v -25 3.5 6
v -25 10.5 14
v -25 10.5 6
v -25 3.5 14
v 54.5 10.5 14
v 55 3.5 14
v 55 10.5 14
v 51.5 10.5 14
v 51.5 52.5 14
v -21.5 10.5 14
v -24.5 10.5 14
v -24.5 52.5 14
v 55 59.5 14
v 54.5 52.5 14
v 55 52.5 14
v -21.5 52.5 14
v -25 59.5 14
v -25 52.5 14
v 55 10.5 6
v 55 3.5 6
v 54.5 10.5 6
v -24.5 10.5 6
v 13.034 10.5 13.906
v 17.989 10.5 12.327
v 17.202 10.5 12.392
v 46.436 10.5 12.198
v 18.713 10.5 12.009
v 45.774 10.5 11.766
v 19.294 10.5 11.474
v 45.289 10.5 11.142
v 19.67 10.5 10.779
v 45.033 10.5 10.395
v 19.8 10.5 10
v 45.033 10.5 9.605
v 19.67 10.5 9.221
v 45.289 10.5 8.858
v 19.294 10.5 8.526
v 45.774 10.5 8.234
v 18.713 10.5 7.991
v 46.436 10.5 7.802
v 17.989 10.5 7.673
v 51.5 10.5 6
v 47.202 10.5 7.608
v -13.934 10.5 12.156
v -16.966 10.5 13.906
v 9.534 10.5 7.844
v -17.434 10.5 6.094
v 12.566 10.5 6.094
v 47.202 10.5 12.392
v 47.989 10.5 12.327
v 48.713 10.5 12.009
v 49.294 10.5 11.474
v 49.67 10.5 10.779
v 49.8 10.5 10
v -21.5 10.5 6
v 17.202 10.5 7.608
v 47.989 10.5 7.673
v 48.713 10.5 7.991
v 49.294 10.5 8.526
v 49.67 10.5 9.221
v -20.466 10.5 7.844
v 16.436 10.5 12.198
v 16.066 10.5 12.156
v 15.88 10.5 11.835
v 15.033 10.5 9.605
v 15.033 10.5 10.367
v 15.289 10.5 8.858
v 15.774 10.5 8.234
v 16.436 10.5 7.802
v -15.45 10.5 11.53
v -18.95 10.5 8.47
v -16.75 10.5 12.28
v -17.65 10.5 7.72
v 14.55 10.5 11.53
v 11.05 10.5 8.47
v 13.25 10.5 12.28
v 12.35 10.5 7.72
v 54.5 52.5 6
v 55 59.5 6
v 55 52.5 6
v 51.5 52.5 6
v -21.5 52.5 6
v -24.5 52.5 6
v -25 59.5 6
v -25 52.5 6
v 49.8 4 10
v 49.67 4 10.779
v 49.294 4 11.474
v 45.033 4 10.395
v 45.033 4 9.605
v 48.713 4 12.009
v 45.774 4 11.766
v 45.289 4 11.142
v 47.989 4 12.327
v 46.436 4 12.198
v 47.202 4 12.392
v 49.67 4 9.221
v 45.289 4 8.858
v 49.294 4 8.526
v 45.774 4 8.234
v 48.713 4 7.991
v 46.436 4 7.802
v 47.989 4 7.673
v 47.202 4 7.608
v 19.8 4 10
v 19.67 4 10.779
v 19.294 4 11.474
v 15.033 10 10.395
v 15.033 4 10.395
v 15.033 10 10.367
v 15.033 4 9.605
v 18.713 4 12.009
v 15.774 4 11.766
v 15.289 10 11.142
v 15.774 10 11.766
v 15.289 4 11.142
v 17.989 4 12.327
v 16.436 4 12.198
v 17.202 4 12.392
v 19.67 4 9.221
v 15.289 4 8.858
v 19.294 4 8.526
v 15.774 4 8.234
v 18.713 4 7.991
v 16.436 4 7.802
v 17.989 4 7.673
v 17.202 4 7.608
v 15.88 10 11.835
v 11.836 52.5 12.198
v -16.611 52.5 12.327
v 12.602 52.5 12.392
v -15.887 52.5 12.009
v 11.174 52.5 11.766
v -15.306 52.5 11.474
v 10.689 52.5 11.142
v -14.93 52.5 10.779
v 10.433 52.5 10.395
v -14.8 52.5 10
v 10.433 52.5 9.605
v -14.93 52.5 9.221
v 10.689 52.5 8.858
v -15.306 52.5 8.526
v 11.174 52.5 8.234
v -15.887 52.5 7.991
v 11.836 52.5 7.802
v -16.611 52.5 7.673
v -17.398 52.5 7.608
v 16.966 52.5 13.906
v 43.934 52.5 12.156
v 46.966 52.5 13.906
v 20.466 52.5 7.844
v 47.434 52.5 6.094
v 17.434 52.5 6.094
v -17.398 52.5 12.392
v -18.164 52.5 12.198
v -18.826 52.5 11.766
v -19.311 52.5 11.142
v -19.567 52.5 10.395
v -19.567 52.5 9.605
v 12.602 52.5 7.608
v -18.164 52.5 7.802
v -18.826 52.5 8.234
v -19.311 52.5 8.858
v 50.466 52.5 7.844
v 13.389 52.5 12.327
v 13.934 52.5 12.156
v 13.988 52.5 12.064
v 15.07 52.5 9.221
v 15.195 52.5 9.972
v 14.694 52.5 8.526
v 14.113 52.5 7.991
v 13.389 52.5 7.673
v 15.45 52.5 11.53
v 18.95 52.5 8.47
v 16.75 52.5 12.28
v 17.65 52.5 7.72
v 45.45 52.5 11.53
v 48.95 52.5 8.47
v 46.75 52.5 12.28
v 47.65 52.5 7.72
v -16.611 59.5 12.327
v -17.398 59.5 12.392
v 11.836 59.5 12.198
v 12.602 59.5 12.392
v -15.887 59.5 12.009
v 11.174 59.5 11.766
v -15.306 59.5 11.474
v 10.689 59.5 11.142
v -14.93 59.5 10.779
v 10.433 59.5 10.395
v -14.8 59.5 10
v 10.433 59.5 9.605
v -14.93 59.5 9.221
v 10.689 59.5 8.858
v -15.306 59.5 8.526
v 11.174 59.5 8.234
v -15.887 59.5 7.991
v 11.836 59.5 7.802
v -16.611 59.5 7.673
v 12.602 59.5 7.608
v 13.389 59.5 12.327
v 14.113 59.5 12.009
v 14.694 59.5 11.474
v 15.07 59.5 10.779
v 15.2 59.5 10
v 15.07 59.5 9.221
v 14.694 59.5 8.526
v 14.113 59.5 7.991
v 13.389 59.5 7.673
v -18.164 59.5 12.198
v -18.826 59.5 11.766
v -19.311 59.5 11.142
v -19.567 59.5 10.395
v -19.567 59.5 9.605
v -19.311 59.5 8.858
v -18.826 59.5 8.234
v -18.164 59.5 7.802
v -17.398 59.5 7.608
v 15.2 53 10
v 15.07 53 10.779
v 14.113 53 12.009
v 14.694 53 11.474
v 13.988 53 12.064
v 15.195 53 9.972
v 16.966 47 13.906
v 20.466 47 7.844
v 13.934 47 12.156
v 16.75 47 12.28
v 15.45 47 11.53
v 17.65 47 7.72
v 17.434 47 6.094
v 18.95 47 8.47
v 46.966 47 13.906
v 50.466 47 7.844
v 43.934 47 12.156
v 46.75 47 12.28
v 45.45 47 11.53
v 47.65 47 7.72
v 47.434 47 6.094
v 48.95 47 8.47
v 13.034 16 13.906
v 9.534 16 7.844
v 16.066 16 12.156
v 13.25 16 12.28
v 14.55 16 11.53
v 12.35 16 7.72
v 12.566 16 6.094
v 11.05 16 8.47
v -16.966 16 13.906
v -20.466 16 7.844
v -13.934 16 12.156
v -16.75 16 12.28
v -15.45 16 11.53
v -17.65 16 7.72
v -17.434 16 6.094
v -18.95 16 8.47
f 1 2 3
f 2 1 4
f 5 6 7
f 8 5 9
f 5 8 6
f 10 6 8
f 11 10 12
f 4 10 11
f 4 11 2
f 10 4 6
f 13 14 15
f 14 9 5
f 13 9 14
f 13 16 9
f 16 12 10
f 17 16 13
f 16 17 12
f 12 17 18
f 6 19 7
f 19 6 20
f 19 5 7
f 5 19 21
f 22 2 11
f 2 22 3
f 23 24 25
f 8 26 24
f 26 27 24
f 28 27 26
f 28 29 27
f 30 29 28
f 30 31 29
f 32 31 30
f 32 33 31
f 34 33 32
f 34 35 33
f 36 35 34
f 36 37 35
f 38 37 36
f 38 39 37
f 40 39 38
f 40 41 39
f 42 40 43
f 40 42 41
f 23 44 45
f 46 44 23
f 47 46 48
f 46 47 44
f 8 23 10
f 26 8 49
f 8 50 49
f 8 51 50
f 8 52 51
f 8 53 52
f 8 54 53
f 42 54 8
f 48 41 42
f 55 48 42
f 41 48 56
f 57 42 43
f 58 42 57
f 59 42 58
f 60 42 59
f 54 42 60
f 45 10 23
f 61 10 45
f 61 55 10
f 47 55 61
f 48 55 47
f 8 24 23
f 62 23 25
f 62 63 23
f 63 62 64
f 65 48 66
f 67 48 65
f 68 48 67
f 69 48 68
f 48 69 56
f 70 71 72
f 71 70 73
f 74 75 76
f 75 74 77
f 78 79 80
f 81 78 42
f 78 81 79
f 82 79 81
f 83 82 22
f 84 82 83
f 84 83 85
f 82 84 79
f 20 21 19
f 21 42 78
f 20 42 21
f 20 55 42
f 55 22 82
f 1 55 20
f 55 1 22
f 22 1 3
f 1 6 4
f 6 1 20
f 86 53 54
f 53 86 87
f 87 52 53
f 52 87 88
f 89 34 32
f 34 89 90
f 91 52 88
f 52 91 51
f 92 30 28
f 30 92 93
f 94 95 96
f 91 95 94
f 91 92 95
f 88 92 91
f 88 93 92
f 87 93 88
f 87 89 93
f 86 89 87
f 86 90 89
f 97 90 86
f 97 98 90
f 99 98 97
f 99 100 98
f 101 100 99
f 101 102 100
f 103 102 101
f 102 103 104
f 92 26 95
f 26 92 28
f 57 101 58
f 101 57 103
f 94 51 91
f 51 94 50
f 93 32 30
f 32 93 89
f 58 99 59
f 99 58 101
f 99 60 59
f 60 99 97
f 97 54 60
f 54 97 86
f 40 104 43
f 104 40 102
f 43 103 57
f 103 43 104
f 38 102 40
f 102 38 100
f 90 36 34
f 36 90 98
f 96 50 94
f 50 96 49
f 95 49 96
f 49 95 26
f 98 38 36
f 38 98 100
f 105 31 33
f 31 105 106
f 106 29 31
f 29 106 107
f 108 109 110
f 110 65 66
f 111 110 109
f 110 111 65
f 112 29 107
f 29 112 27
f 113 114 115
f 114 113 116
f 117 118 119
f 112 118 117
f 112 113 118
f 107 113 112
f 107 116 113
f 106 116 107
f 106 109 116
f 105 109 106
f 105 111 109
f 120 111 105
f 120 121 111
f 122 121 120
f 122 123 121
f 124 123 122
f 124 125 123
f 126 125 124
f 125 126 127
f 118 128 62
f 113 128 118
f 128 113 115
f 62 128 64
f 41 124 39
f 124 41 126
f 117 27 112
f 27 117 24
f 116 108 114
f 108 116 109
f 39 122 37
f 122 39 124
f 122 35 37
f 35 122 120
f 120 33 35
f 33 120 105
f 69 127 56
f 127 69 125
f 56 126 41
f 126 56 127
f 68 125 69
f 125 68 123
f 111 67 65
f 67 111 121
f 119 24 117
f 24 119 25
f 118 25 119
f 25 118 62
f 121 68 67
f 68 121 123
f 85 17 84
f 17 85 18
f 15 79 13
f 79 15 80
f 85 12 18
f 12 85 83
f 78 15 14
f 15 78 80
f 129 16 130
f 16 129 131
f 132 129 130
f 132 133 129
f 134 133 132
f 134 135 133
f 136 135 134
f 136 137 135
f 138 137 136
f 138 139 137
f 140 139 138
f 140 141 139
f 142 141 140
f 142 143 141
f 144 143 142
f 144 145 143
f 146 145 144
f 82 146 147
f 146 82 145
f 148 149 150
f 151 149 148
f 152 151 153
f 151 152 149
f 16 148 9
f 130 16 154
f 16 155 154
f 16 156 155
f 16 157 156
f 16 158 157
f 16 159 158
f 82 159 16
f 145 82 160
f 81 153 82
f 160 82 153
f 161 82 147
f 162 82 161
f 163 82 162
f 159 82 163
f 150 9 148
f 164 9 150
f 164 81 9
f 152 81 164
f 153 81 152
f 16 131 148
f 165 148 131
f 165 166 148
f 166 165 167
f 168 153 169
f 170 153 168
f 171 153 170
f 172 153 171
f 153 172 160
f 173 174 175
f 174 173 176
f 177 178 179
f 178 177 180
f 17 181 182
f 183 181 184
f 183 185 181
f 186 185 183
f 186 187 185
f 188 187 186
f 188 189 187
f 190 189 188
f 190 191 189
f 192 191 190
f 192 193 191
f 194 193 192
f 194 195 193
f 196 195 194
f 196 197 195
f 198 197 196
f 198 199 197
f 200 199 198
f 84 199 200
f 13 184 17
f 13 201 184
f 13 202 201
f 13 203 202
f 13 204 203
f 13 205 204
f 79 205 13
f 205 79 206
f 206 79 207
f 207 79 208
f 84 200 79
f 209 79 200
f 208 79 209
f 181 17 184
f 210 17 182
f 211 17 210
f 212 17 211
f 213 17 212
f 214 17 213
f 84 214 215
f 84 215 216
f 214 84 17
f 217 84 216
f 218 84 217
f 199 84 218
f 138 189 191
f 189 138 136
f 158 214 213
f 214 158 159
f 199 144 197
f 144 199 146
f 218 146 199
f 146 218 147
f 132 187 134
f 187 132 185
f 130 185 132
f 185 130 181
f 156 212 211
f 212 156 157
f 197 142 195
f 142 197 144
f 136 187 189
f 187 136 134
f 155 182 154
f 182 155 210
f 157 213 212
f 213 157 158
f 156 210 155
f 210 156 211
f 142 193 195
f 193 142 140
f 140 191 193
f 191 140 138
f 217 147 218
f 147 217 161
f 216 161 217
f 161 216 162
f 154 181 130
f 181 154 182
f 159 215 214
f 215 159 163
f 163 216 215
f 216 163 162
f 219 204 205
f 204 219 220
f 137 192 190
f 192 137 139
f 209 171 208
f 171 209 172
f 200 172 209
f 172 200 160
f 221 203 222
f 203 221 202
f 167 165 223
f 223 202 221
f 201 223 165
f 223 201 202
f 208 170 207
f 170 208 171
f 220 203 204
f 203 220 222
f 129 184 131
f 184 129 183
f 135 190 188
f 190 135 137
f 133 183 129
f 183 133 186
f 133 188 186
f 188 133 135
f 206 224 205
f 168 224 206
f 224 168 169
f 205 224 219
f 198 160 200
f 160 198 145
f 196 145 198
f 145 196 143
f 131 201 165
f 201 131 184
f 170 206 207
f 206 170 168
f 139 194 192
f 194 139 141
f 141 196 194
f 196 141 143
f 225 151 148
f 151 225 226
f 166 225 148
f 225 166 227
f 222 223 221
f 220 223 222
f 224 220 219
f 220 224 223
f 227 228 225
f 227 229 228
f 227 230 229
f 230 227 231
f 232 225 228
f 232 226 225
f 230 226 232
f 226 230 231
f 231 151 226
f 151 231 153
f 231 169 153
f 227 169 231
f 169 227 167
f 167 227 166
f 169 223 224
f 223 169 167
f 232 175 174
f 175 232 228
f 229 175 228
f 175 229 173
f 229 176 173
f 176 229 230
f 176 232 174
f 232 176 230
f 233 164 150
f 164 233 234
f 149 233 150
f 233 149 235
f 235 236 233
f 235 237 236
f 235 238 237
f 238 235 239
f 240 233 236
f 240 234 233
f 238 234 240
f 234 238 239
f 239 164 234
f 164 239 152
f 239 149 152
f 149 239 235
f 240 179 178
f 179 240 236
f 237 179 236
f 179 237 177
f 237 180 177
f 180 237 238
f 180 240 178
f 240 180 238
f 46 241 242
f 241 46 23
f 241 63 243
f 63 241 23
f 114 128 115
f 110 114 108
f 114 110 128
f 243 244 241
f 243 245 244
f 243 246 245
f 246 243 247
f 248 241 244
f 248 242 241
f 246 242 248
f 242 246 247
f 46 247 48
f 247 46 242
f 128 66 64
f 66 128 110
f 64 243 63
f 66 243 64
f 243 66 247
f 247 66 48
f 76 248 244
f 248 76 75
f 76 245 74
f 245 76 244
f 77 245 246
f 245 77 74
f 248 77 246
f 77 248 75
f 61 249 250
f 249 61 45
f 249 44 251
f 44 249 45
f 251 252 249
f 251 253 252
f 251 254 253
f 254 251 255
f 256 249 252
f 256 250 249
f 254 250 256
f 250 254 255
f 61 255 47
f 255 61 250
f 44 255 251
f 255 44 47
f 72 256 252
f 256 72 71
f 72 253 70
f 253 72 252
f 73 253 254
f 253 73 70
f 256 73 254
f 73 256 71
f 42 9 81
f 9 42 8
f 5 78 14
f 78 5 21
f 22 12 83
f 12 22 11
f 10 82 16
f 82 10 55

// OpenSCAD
// file: ../../08_scadSimplifyLib/scad/primitives.scad
//px - Position X
//rx - Rotation X
//sx - Scale X
//mx - Mirror X


//yCube(szx=5, py=3, rz=30, mx=1, clr="red");
//yCyl(px=7, py=5, rb=3, clr="green");
//yPoly(p=[[-5,0],[5,0],[0,5]],szz=3);

//szx - SiZe X
module yCube(px=0, py=0, pz=0, rx=0, ry=0, rz=0, sx=1, sy=1, sz=1, mx=0, my=0, mz=0, szx=1, szy=1, szz=1, clr = "grey") {
    mirror([mx,my,mz])
    translate([px, py, pz])
    rotate([rx,ry,rz])
    scale([sx,sy,sz])
    color(clr)
        cube([szx, szy, szz], center=true);    
}//yCube

//rb - Radius Bottom, rt - Radius Top
module yCyl(px=0, py=0, pz=0, rx=0, ry=0, rz=0, sx=1, sy=1, sz=1, mx=0, my=0, mz=0, rb=1, rt=1, szz=1, clr = "grey", fn = ($preview ? 2:8) ) {
    mirror([mx,my,mz])
    translate([px, py, (pz-szz/2)])
    rotate([rx,ry,rz])
    scale([sx,sy,sz])
    color(clr)
        cylinder(szz, rb, rt, $fn=fn*((rb>rt)?rb:rt));    
}//yCyl


module yPoly(px=0, py=0, pz=0, rx=0, ry=0, rz=0, sx=1, sy=1, sz=1, mx=0, my=0, mz=0, p=[[0,0],[10,0],[0,10]], szz=1, clr = "grey") {
    mirror([mx,my,mz])
    translate([px, py, pz])
    rotate([rx,ry,rz])
    scale([sx,sy,sz])
    color(clr)
        linear_extrude(szz)
            polygon(p);
}//yCube
// file: ../../05_PanzerWheel/scad/simplePartsLib.scad
include <../../08_scadSimplifyLib/scad/primitives.scad>

//single int
//roadWheel(support=8, supBolts=true);
//roadWheel(support=1, supBolts=false, px=50);
//single ext
//roadWheel(support=8, supBolts=false, py=50);
//roadWheel(support=1, supBolts=true, px=50, py=50);

//roadWheel(px=50);

module roadWheel(px=0, py=0, pz=0, rx=0, ry=0, rz=0, support=0, supBolts=true){
    translate([px,py,pz])
    rotate([rx,ry,rz])
    {
        
        //main part
        difference(){
            yCyl(rb=20, rt=6, szz=3);
            yCyl(rb=1.4, rt=1.4, szz=6, pz=-1);
        }//diff
        //support
        difference(){
            yCyl(rb=6, rt=6, szz=support, pz=support/2+1.5);
            yCyl(rb=1.4, rt=1.4, szz=(support+2), pz=support/2+1.5);
        }//diff
        //tire support
        difference(){
            yCyl(rb=19, rt=17.6, szz=2, pz=-0.5);
            yCyl(rb=16.5, rt=17.6, szz=6, pz=-1);
        }//diff
        
        //tire
        difference(){
            yCyl(rb=20, rt=20, szz=2, pz=-0.5);
            yCyl(rb=18, rt=18, szz=6, pz=-1);
        }//diff

        //internal nuts
        if (supBolts){
            for (i=[0:60:359]){    
                yCyl(rb=0.8, rt=0.8, fn=8, szz=1, px=sin(i)*5, py=cos(i)*5, pz=1.7+support);
            }
        }
        //external nuts
        for (i=[0:20:359]){    
            yCyl(rb=0.6, rt=0.6, fn=10, px=sin(i)*16, py=cos(i)*16, pz=-0.5);
        }
    }//translate
}
// main file
include <../../05_PanzerWheel/scad/simplePartsLib.scad>


chassis(px=15, py=9,pz=10);
//torsion();
//cap();
//torsion(px=17.9, py=1, pz=9, rx=-90, ry=150, showMetall=true);
//roadWheelExt(px=0, py=-6);
//torsion(px=47.3, py=1, pz=10, rx=-90, ry=150, showMetall=true);
//roadWheelInt(px=30, py=-6);
//torsion(px=12.7, py=62, pz=10, rx=-90, ry=150, rz=180, showMetall=true);
//torsion(px=(12.7-30), py=62, pz=10, rx=-90, ry=150, rz=180, showMetall=true);

module chassis(px=0, py=0, pz=0, rx=0, ry=0, rz=0, showMetall=false){
    translate([px,py,pz])
    rotate([rx,ry,rz]){
        
        difference(){
            yCube(szx=80, szy=7, szz=8, py=-2);
            yCyl(rb=2.4, rt=2.4, szz=10, px=32.4, py=5, pz=5, rx=90);
            yCyl(rb=2.4, rt=2.4, szz=10, px=2.4, py=5, pz=5, rx=90);
        }//dif
        difference(){
            yCube(szx=80, szy=7, szz=8, py=47);
            yCyl(rb=2.4, rt=2.4, szz=10, px=-32.2, py=53, pz=5, rx=90);
            yCyl(rb=2.4, rt=2.4, szz=10, px=-2.2, py=53, pz=5, rx=90);
        }//dif
        
        //
        yCube(szx=3, szy=50, szz=8, px=38, py=24);
        yCube(szx=3, szy=50, szz=8, px=-38, py=24);       
        torsionHolder(py=1);
        torsionHolder(px=-30,py=1);
        torsionHolder(py=44,rz=180);
        torsionHolder(px=30,py=44,rz=180);
        
    }//transform
}//module chassis

module torsionHolder(px=0, py=0, pz=0, rx=0, ry=0, rz=0){
    translate([px,py,pz])
    rotate([rx,ry,rz]){
        difference(){
            yCube(szx=3.5, szy=6, szz=7, px=-2.2, py=3, ry=30);
            yCube(szx=1.5, szy=8, szz=4.4, px=-2.2, py=3, ry=30);
        }//dif
    }//transform
}//torsionHolder

module cap(px=0, py=0, pz=0, rx=0, ry=0, rz=0, showMetall=false){
    translate([px,py,pz])
    rotate([rx,ry,rz]){
        difference(){
            yCyl(rb=3, rt=3, szz=3, pz=1.5);
            yCyl(rb=1.2, rt=1.2, szz=5, pz=1);
        }//dif
    }
}//module     
module torsion(px=0, py=0, pz=0, rx=0, ry=0, rz=0, showMetall=false){
    translate([px,py,pz])
    rotate([rx,ry,rz]){
        yCyl(rb=3, rt=3, szz=3.5, pz=0.25);
        yCyl(rb=2, rt=2, szz=14, py=1, pz=8);
        
        //torsion itself
        difference(){
            yCube(szx=1.0, szy=4, szz=50, py=1,pz=25);
            yCyl(rb=0.8, rt=0.8, szz=5, px=-2.5, py=1, pz=50, ry=90);
        }
        
        yCube(szx=17, szy=4, szz=3, px=10, py=1);
        difference(){
            yCyl(rb=3, rt=3, szz=5, px=20, pz=-1.5);
            yCyl(rb=1.2, rt=1.2, szz=10, px=20);
        }//dif
        if (showMetall){
            yCyl(rb=1.2, rt=1.2, szz=40, px=20, pz=-19);
            }
        
    } //transform
}//module torsion

module roadWheelExt(px=0, py=0, pz=0, rx=0, ry=0, rz=0){
    translate([px,py,pz])
    rotate([rx,ry,rz]){    
        roadWheel(support=1, py=-10, rx=90);
        roadWheel(support=8, supBolts=false, py=-7, rx=-90);
    }//transform
}//module roadWheelExt


module roadWheelInt(px=0, py=0, pz=0, rx=0, ry=0, rz=0){
    translate([px,py,pz])
    rotate([rx,ry,rz]){    
        roadWheel(support=8, py=-3, rx=90);
        roadWheel(support=1, supBolts=false, py=0, rx=-90);
    }//transform
}//module roadWheelInt

module roadWheelExtDual(px=0, py=0, pz=0, rx=0, ry=0, rz=0){
    translate([px,py,pz])
    rotate([rx,ry,rz]){    
        roadWheel(support=1, py=-10, rx=90);
        roadWheel(support=2, supBolts=false, py=-7, rx=-90);

        roadWheel(supBolts=false, py=-2, rx=90);
        roadWheel(support=16, supBolts=false, py=1, rx=-90);
    }//transform
}//module roadWheelExtDual

module roadWheelIntDual(px=0, py=0, pz=0, rx=0, ry=0, rz=0){
    translate([px,py,pz])
    rotate([rx,ry,rz]){    
        roadWheel(support=16, py=-10, rx=90);
        roadWheel(support=2, supBolts=false, py=-7, rx=-90);

        roadWheel(supBolts=false, py=-2, rx=90);
        roadWheel(support=1, supBolts=false, py=1, rx=-90);
    }//transform
}//module roadWheelIntDual
